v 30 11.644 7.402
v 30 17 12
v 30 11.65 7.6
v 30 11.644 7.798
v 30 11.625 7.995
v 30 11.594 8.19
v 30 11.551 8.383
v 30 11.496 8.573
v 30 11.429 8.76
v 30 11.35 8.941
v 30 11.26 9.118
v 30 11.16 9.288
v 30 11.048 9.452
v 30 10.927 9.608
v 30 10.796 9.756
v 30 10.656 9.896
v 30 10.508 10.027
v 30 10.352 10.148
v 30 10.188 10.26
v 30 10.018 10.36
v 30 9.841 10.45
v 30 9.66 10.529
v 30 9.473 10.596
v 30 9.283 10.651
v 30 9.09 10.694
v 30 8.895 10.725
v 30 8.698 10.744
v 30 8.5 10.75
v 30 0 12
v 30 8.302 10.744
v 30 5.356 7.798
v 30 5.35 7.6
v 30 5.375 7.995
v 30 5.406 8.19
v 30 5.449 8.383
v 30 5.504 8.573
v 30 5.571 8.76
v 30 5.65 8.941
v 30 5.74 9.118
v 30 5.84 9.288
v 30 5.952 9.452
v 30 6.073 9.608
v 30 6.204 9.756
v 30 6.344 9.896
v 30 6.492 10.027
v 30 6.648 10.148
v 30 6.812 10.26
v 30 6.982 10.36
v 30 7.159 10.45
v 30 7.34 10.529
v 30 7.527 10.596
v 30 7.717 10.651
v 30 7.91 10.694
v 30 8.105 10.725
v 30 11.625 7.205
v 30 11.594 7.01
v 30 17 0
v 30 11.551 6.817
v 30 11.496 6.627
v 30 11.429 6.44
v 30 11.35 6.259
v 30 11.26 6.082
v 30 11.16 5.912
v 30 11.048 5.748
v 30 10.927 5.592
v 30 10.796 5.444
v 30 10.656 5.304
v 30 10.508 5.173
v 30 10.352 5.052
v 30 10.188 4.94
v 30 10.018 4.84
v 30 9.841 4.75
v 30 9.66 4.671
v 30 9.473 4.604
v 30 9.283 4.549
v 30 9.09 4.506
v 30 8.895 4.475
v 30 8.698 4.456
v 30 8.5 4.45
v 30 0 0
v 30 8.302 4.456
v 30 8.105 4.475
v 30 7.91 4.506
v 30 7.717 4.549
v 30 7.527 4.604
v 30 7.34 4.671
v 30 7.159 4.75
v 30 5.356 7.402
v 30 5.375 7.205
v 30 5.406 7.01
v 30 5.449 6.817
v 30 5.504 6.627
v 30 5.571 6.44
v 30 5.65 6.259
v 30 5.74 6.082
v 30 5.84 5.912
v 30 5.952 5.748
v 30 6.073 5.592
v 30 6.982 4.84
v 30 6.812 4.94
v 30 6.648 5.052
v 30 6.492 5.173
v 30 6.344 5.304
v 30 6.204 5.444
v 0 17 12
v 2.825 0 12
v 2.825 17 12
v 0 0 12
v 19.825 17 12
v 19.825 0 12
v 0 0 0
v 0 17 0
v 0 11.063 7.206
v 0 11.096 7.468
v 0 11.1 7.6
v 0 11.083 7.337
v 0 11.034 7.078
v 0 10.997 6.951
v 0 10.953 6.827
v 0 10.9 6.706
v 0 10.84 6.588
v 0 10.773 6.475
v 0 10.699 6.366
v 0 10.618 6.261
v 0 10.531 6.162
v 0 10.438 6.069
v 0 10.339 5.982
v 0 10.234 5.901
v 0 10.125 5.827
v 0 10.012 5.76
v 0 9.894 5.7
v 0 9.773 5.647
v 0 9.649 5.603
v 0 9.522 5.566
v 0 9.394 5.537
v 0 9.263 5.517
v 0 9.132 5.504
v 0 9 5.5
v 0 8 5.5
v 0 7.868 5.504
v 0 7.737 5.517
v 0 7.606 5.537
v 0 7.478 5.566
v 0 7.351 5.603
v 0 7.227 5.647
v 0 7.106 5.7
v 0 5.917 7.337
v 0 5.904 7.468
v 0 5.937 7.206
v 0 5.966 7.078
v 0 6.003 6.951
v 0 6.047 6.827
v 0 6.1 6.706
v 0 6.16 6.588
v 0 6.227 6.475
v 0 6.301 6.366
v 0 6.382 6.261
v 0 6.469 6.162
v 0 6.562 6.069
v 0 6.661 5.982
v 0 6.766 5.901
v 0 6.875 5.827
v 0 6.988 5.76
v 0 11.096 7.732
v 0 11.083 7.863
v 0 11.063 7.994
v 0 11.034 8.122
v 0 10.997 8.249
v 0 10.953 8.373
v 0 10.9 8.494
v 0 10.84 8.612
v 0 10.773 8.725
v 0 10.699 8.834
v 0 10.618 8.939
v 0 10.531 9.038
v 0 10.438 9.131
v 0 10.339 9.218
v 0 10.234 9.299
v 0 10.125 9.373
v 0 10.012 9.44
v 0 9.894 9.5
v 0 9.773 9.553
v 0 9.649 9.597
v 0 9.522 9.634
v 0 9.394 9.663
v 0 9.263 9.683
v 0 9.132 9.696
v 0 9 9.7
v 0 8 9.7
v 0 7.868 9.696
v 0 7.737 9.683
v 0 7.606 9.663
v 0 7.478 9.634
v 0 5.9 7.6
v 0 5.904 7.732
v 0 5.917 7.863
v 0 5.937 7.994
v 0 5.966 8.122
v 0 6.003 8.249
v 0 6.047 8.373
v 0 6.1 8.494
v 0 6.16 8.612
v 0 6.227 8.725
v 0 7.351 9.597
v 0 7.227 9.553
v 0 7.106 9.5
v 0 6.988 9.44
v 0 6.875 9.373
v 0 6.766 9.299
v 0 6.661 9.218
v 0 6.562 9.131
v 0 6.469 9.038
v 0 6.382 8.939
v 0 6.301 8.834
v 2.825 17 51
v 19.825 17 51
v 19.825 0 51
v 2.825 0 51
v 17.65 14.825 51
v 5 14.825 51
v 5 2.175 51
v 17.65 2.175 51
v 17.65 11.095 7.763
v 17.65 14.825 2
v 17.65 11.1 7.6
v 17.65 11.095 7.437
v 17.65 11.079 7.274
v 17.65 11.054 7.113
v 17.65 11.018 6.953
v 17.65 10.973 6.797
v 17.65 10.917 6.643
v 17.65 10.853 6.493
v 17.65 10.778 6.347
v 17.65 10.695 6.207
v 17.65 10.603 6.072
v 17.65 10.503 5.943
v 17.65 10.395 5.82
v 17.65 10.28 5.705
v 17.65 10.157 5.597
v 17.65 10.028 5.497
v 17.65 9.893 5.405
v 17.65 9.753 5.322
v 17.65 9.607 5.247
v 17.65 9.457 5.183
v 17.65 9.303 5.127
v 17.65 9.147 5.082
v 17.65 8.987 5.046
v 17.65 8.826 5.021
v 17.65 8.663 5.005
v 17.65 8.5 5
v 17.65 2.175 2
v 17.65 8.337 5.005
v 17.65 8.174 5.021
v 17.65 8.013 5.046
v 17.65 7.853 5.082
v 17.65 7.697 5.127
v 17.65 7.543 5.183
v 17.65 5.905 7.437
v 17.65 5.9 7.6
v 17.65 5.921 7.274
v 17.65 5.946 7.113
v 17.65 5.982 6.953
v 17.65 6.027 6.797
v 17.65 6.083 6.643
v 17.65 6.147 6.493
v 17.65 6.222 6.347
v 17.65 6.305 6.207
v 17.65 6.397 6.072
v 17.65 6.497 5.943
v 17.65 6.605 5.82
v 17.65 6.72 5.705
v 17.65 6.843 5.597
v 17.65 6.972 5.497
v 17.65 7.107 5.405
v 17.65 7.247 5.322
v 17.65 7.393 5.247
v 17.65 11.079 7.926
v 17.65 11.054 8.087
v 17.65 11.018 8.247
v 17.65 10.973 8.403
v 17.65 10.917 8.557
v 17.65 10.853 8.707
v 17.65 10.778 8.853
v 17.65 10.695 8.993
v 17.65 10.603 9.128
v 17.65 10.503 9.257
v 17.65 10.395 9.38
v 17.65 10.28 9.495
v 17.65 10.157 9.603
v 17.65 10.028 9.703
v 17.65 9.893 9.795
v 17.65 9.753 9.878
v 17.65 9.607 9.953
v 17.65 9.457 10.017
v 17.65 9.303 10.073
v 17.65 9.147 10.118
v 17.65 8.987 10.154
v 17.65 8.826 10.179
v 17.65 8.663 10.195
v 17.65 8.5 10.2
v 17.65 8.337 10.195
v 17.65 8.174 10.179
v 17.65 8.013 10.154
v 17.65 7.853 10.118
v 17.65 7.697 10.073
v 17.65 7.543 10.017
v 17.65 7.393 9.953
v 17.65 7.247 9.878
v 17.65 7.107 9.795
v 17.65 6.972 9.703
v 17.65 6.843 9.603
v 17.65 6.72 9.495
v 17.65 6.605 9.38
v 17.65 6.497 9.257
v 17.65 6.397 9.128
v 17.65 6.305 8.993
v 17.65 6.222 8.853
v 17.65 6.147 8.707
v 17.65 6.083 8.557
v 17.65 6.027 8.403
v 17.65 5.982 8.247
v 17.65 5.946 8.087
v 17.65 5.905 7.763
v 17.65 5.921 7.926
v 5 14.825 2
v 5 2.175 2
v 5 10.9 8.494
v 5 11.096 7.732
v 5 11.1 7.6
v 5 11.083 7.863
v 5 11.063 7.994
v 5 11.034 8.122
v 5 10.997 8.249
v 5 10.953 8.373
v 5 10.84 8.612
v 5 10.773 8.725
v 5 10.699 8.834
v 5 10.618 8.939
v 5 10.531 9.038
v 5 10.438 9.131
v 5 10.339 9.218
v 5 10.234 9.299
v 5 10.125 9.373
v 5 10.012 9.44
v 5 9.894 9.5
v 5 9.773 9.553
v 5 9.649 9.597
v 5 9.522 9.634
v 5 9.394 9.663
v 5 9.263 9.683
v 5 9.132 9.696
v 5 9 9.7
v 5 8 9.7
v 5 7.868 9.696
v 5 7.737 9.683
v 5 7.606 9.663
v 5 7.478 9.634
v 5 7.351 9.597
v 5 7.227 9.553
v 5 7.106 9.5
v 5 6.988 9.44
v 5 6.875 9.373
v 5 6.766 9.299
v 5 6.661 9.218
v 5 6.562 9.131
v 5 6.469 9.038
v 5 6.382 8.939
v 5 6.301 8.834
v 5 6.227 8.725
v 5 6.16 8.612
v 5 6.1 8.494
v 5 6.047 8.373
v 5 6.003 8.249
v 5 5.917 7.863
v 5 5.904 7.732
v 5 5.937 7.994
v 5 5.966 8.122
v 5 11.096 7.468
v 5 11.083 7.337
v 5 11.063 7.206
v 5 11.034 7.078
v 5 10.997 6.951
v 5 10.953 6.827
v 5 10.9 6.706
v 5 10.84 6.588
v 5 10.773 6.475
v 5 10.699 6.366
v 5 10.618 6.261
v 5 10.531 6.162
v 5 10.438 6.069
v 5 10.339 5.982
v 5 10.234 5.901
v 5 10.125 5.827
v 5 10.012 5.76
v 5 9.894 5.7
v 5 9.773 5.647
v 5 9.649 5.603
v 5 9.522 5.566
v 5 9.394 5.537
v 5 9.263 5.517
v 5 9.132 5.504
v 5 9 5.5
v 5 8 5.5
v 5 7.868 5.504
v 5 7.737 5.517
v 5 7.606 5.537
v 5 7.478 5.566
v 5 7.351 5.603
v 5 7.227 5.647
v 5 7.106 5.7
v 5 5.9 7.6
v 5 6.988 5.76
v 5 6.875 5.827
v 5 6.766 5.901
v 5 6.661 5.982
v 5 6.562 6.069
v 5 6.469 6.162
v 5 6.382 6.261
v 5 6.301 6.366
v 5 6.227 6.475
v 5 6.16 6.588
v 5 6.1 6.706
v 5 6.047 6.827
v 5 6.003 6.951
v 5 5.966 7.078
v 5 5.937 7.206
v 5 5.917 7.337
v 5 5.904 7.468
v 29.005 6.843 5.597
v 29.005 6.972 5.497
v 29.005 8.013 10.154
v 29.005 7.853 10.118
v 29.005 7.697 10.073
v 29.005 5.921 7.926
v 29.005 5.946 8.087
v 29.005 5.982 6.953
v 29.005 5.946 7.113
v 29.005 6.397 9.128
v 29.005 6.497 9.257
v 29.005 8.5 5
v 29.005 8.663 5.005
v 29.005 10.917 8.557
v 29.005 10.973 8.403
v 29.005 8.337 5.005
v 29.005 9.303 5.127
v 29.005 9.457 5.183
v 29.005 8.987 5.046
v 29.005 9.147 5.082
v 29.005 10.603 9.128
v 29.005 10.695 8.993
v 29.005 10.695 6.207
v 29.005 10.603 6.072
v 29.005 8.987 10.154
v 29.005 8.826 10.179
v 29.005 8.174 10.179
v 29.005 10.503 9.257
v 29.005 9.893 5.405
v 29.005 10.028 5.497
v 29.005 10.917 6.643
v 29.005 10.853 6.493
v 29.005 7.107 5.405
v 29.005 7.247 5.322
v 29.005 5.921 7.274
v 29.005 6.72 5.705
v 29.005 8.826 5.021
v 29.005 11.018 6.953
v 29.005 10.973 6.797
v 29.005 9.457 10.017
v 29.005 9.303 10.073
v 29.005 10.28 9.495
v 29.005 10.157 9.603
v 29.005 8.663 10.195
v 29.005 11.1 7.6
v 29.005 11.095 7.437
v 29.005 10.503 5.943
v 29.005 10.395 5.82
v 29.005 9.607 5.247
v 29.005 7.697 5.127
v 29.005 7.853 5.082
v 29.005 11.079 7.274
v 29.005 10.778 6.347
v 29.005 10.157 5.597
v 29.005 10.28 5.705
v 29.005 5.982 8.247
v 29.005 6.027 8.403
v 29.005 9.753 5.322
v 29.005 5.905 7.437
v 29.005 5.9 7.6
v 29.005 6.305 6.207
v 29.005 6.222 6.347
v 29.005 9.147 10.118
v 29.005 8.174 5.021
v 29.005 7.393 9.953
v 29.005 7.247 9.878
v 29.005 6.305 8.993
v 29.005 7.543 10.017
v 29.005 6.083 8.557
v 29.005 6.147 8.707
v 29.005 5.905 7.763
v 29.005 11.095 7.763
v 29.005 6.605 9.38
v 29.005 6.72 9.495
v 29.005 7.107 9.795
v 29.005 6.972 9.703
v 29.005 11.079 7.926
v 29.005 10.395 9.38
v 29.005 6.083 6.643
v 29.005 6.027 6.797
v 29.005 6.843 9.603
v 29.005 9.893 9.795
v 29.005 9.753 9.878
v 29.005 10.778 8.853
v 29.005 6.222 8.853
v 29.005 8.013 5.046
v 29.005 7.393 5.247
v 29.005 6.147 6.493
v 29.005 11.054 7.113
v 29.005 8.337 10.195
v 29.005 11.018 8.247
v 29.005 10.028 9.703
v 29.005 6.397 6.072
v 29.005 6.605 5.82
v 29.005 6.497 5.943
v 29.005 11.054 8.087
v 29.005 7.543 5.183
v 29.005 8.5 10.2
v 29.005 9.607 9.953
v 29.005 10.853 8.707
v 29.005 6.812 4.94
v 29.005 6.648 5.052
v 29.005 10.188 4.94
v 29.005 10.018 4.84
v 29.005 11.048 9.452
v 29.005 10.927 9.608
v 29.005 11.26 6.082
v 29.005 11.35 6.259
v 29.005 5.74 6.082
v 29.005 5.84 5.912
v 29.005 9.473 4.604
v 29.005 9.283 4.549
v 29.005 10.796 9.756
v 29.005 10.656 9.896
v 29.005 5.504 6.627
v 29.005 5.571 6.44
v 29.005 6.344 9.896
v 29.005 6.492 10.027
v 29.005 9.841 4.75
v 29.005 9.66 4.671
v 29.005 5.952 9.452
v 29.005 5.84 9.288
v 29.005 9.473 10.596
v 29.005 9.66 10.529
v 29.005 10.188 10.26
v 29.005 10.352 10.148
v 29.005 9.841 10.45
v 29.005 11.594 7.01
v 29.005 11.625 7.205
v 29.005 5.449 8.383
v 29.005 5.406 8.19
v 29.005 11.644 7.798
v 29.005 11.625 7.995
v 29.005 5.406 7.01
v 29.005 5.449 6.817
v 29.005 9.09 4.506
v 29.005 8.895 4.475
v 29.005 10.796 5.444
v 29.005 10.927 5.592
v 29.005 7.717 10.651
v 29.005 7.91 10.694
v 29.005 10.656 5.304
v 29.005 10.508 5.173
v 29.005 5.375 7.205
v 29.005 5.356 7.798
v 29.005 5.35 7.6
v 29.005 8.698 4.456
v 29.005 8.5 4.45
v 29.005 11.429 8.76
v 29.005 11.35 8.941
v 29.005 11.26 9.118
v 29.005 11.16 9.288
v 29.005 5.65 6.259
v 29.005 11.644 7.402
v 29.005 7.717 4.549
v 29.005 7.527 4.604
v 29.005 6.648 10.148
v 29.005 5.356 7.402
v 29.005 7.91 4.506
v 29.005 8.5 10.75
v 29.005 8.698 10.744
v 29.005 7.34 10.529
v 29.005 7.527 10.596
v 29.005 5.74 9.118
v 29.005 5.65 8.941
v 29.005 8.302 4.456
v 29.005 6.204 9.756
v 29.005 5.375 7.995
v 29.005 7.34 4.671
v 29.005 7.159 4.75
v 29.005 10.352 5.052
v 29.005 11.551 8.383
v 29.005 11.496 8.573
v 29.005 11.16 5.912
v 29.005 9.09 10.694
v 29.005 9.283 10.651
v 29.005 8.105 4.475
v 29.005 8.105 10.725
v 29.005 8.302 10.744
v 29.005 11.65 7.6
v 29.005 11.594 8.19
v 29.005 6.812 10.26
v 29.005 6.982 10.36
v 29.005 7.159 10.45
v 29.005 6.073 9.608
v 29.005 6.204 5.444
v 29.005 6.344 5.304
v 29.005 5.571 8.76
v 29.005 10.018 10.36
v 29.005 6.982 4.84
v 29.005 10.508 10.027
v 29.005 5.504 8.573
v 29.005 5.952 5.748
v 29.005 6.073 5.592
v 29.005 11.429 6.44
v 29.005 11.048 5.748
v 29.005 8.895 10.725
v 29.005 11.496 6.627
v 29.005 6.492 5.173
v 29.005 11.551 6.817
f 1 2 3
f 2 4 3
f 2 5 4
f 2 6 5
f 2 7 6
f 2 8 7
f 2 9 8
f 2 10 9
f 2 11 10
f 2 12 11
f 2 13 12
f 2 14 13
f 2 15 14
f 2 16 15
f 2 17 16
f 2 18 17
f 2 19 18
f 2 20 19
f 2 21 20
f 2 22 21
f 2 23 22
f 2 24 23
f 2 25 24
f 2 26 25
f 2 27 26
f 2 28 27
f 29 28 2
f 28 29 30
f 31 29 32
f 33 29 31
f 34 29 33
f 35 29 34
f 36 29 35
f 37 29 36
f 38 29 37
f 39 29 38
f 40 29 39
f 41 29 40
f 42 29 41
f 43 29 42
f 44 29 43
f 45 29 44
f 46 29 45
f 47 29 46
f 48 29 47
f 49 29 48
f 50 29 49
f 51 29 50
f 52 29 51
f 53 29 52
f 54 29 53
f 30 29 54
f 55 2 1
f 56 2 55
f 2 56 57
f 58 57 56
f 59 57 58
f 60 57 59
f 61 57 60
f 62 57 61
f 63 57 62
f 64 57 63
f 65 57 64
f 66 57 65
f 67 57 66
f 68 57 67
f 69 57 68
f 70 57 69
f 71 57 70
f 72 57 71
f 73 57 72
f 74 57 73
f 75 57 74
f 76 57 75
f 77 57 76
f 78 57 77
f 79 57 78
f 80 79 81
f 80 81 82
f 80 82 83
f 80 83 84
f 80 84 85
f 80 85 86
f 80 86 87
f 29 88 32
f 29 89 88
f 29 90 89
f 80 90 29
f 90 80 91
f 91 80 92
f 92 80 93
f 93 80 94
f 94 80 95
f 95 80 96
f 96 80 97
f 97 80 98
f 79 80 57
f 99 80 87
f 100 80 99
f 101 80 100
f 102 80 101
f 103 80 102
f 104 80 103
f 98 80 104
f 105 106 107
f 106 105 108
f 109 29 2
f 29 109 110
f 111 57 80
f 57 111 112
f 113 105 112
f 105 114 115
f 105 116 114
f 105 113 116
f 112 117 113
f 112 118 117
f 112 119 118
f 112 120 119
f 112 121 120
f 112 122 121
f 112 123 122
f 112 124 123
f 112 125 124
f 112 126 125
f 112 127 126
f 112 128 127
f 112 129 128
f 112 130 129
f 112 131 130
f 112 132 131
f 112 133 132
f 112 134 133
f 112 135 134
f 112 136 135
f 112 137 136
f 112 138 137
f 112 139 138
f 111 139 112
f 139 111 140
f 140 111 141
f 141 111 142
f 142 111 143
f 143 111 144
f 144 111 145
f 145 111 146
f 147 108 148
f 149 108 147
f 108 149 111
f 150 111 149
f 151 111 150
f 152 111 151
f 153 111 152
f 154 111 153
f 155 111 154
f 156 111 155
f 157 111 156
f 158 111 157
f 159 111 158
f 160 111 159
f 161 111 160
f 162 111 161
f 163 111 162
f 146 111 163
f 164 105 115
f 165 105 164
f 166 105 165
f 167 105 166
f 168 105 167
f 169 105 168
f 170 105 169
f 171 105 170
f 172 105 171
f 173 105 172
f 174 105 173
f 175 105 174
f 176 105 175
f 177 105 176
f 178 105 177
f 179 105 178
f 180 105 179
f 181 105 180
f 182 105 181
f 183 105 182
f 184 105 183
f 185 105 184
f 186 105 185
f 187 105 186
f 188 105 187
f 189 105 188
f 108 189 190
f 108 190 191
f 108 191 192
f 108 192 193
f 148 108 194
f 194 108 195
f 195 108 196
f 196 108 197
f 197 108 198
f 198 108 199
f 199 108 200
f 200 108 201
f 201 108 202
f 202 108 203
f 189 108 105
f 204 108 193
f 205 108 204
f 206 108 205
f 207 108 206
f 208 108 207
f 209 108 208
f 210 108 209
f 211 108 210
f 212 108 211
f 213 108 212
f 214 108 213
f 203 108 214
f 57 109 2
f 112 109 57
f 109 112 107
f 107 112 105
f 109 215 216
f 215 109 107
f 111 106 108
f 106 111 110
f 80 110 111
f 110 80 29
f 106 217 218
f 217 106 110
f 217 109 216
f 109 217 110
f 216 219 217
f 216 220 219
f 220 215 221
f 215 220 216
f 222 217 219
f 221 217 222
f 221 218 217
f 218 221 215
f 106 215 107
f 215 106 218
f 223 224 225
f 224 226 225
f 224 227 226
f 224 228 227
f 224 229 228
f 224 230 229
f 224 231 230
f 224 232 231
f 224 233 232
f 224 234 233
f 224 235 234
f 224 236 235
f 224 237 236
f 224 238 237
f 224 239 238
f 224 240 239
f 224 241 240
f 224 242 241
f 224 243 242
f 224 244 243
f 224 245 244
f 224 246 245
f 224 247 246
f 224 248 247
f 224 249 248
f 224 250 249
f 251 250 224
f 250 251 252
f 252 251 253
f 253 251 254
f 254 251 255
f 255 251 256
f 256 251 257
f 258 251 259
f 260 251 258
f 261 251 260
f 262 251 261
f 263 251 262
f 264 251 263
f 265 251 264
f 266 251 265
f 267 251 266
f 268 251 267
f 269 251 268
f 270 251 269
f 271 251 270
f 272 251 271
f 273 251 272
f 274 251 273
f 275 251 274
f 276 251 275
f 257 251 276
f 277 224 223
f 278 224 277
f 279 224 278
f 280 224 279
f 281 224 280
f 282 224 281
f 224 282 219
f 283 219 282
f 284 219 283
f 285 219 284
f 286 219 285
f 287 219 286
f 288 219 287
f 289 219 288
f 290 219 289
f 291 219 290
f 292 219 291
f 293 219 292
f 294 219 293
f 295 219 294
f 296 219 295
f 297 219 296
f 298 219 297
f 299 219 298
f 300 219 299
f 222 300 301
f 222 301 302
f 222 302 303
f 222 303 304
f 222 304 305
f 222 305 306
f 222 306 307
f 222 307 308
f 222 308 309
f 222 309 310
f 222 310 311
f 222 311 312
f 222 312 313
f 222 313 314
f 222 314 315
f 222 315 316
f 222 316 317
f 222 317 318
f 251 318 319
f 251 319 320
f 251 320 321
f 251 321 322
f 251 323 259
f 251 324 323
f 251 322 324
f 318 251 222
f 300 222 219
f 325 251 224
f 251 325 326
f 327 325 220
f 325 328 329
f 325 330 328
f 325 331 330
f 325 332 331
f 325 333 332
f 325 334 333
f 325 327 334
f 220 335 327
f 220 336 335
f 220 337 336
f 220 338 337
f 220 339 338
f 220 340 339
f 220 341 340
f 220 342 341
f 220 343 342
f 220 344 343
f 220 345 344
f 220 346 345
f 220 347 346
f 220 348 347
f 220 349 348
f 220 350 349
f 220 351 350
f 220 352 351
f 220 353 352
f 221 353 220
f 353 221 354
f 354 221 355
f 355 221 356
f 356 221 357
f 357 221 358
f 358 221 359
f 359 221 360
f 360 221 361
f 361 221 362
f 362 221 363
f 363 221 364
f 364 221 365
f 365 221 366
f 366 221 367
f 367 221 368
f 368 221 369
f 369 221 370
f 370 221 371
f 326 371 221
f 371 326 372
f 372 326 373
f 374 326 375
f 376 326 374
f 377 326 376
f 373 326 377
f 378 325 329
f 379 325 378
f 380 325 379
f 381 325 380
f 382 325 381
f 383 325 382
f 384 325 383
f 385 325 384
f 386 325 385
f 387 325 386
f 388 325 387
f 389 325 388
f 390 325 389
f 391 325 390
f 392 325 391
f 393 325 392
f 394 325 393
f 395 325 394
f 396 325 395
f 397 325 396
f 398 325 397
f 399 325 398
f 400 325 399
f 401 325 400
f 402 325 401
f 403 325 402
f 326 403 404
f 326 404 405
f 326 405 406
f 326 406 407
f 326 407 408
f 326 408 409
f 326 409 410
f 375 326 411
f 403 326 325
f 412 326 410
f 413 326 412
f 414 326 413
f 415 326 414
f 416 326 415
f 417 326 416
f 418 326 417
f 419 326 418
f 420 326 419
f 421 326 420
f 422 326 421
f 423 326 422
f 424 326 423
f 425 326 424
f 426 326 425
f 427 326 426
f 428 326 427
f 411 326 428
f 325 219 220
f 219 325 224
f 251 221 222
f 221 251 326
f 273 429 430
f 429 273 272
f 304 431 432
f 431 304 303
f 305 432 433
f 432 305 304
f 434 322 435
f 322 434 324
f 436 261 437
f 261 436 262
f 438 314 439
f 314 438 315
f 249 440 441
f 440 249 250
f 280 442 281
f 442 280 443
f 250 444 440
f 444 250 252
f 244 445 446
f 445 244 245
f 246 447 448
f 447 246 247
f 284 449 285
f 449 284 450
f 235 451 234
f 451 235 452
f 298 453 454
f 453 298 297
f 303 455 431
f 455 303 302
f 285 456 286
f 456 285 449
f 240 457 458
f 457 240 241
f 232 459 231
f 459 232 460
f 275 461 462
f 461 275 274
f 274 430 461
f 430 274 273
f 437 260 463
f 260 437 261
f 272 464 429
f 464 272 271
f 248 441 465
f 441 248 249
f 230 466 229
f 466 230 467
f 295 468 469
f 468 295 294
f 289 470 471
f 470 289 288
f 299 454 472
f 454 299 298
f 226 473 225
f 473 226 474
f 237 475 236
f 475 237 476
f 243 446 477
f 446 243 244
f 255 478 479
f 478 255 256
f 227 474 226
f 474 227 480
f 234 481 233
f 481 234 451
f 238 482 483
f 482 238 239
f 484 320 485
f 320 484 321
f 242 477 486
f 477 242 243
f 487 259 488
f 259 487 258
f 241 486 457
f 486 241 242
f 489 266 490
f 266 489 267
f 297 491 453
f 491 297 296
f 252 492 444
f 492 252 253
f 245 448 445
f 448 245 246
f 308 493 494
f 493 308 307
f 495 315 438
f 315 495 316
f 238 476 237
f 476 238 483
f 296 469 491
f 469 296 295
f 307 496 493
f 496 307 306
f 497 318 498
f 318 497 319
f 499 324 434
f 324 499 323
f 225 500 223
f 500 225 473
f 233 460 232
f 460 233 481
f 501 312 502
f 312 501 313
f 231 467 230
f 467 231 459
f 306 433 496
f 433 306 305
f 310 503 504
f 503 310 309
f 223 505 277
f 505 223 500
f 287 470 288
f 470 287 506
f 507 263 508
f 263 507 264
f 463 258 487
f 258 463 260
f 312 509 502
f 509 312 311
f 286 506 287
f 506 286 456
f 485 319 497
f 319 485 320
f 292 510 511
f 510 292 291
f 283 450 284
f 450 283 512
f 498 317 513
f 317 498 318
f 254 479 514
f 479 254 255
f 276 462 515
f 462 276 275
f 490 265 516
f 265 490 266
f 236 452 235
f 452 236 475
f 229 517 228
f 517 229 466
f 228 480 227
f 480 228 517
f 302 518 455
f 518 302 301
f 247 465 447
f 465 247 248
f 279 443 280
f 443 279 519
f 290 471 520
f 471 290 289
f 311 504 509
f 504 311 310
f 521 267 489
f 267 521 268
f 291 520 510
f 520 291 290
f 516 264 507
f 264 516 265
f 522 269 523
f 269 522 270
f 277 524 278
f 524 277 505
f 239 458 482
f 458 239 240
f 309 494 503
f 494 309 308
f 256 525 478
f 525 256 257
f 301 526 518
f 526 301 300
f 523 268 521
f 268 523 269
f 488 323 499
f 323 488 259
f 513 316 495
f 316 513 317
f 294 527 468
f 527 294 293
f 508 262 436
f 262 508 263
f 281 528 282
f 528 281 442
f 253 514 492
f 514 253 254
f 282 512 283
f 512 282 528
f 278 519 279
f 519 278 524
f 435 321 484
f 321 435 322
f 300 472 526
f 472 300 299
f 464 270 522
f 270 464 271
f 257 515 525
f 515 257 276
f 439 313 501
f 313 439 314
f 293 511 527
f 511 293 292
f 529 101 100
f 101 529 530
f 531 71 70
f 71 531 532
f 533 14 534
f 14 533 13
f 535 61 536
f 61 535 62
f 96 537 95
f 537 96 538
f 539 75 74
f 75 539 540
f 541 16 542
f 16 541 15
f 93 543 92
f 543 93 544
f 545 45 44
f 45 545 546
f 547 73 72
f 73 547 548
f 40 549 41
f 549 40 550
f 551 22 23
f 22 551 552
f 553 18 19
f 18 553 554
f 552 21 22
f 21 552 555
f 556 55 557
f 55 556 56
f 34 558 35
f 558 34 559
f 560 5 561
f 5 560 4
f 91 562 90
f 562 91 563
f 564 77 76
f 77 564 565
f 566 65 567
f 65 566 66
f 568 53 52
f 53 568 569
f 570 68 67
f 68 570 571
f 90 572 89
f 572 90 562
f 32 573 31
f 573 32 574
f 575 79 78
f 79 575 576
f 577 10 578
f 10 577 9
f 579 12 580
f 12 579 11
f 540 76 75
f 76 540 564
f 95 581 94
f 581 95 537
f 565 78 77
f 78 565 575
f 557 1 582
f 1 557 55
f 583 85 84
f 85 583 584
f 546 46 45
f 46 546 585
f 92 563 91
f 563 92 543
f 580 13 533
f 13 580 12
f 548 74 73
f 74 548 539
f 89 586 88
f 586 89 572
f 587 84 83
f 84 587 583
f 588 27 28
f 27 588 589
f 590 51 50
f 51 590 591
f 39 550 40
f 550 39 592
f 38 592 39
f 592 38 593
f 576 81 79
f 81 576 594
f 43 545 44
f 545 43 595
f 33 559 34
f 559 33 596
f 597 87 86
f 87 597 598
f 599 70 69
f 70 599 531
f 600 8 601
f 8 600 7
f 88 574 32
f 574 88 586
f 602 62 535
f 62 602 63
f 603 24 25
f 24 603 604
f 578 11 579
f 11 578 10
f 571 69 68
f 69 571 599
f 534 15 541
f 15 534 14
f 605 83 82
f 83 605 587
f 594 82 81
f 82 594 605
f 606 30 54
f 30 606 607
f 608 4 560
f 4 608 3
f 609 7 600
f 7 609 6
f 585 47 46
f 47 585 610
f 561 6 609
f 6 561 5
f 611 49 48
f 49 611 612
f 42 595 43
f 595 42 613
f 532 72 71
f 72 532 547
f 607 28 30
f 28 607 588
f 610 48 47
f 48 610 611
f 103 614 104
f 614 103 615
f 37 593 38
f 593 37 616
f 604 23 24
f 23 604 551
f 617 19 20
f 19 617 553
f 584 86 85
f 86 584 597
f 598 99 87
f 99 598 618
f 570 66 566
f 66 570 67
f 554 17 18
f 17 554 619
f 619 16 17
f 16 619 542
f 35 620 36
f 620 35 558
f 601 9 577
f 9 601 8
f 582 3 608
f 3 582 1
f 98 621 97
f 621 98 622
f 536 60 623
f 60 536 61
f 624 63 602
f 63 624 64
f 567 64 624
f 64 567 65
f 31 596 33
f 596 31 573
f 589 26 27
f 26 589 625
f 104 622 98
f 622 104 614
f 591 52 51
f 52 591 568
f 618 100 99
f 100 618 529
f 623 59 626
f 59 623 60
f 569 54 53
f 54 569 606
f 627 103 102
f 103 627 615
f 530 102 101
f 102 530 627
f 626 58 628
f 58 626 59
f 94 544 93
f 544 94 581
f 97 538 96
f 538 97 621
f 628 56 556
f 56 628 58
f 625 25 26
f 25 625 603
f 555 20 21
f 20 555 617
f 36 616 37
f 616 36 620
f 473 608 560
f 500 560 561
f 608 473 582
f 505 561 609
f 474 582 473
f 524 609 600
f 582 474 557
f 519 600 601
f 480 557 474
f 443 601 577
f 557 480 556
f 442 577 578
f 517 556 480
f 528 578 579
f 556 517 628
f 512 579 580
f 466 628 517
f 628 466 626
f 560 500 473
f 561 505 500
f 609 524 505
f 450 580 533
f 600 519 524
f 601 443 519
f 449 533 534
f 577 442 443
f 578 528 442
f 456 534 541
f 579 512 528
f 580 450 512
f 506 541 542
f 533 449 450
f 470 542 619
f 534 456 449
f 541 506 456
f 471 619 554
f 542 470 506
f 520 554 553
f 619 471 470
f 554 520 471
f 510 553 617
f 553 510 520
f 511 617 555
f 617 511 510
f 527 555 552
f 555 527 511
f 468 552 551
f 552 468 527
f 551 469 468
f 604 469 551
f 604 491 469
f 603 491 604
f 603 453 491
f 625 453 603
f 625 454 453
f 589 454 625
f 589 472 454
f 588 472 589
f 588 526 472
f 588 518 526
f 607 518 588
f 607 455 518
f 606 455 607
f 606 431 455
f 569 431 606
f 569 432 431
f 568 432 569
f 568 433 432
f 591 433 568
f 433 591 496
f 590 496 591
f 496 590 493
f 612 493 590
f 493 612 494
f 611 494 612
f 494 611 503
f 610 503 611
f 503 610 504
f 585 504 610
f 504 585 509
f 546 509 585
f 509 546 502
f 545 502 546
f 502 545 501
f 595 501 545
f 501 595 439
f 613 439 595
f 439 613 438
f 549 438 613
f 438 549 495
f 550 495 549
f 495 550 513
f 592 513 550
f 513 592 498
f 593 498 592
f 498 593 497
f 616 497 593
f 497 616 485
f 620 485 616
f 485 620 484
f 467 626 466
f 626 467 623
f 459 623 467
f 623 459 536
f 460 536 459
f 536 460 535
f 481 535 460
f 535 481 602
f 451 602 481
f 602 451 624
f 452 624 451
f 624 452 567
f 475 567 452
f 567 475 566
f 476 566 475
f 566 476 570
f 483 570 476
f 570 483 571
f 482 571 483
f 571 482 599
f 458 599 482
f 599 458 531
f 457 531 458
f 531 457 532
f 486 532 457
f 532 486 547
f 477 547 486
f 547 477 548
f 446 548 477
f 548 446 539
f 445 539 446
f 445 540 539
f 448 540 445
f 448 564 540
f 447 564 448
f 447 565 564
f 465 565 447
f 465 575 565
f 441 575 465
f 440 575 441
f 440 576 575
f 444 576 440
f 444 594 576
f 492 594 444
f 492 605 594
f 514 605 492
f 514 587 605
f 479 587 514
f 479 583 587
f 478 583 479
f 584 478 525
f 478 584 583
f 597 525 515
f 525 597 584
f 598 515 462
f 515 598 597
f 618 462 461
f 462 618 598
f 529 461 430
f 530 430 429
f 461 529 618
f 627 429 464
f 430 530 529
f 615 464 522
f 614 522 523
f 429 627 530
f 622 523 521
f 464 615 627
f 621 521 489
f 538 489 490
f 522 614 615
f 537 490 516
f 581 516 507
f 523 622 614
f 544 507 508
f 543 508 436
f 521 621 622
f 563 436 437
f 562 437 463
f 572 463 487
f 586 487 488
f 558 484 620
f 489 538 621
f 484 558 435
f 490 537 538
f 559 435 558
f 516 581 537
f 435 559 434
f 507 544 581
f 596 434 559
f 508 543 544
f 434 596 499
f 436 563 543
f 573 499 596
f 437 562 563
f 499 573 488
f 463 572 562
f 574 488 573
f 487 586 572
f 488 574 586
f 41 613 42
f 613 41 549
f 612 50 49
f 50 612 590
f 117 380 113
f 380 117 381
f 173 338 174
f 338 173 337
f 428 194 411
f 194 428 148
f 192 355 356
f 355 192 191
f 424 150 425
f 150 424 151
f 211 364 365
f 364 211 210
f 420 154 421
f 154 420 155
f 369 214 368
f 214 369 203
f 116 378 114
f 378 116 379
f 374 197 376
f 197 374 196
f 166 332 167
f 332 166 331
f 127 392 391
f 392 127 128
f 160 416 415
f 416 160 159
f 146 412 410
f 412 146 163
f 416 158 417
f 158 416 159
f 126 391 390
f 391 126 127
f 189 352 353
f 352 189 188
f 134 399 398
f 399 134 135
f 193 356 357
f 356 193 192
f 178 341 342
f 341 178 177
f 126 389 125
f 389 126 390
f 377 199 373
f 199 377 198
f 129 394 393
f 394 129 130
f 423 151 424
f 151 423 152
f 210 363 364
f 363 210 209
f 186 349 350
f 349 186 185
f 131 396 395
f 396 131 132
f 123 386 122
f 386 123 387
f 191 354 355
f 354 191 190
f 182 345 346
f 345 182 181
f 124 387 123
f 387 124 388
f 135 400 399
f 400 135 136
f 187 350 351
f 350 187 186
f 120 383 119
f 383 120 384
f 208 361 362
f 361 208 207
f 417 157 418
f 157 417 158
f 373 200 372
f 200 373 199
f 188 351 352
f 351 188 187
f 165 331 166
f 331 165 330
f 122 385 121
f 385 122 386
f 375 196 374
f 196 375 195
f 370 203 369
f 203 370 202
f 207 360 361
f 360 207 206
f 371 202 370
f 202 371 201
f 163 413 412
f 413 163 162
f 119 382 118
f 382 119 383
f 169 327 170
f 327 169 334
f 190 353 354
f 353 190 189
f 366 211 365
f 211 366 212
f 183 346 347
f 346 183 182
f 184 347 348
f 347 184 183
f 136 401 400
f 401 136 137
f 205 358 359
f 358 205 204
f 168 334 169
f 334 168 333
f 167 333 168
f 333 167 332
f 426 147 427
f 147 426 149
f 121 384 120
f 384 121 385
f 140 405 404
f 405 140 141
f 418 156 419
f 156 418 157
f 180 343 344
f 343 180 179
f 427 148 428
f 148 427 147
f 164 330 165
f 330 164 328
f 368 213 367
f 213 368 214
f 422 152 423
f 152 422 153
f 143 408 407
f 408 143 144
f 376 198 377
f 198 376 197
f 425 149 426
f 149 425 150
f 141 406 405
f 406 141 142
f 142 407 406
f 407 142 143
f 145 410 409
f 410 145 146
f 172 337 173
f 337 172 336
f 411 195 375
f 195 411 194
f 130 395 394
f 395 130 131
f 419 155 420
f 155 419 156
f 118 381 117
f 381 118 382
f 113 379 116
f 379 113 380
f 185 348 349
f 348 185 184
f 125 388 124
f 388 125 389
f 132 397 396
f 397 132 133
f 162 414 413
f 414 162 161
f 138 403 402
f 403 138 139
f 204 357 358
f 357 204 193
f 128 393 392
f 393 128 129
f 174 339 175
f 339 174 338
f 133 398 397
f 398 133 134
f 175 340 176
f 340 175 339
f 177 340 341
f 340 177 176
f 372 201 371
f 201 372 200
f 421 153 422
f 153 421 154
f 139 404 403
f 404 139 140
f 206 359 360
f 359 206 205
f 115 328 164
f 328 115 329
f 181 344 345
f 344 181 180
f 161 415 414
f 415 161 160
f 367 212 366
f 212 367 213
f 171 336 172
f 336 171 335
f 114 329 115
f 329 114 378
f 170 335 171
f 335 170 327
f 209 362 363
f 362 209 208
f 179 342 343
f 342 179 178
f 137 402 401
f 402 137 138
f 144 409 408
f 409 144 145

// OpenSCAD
//rund
$fn=100;
//Variablen
wiggle = 0.01 ;
wiggleZ = [0,0,wiggle] ;
unten = [30,17,12] ;
untenHoch = 51 ;
curvette = [12.65,12.65,44] ;
curvetteIn = [10,10,41.8] ;
curvetteOffset = [5,(unten.y-curvette.y)/2,2];
ledLochD = 5.2 ;
ledLochRimD = ledLochD + 1.1;
ledLochRimH = 1 ;
ledLochH = unten.x - (curvette.x + curvetteOffset.x)  ;
ldrD = 4.2 ;
ldrW = 5.2 ;
bodenFreiheit = [0,0,5] ;

module Curvette () {
    color([1,1,1],.3) difference (){
        cube(curvette);
        translate([(curvette.x-curvetteIn.x)/2,(curvette.y-curvetteIn.y)/2,curvette.z-curvetteIn.z]) cube(curvetteIn + wiggleZ);
    }
}

difference() {
    //das ding
    union(){
        cube(unten);
        translate([curvetteOffset.x-(unten.y-curvette.x)/2,0,0])cube([unten.y,unten.y,untenHoch]);
    }
    //curvettenloch
    translate(curvetteOffset)cube(curvette+[0,0,10]);
    //LED Loch
    translate([unten.x-ledLochH- wiggle/2,(unten.y)/2,ledLochD/2]+bodenFreiheit) rotate([0,90,0]) cylinder(h=ledLochH + wiggle, d=ledLochD);
    translate([unten.x-ledLochRimH+wiggle/2,(unten.y)/2,ledLochD/2]+bodenFreiheit) rotate([0,90,0]) cylinder(h=ledLochRimH, d=ledLochRimD);
    //LDR Loch
    translate([-wiggle/2,(ldrW-ldrD)/2+(unten.y)/2,ldrD/2+(ledLochD-ldrD)/2]+bodenFreiheit)
        rotate([0,90,0])
            hull() {
                cylinder(d=ldrD,h=7);
                translate([0,ldrD-ldrW,0])cylinder(d=ldrD,h=7);
            }
}


*translate(curvetteOffset) Curvette();
